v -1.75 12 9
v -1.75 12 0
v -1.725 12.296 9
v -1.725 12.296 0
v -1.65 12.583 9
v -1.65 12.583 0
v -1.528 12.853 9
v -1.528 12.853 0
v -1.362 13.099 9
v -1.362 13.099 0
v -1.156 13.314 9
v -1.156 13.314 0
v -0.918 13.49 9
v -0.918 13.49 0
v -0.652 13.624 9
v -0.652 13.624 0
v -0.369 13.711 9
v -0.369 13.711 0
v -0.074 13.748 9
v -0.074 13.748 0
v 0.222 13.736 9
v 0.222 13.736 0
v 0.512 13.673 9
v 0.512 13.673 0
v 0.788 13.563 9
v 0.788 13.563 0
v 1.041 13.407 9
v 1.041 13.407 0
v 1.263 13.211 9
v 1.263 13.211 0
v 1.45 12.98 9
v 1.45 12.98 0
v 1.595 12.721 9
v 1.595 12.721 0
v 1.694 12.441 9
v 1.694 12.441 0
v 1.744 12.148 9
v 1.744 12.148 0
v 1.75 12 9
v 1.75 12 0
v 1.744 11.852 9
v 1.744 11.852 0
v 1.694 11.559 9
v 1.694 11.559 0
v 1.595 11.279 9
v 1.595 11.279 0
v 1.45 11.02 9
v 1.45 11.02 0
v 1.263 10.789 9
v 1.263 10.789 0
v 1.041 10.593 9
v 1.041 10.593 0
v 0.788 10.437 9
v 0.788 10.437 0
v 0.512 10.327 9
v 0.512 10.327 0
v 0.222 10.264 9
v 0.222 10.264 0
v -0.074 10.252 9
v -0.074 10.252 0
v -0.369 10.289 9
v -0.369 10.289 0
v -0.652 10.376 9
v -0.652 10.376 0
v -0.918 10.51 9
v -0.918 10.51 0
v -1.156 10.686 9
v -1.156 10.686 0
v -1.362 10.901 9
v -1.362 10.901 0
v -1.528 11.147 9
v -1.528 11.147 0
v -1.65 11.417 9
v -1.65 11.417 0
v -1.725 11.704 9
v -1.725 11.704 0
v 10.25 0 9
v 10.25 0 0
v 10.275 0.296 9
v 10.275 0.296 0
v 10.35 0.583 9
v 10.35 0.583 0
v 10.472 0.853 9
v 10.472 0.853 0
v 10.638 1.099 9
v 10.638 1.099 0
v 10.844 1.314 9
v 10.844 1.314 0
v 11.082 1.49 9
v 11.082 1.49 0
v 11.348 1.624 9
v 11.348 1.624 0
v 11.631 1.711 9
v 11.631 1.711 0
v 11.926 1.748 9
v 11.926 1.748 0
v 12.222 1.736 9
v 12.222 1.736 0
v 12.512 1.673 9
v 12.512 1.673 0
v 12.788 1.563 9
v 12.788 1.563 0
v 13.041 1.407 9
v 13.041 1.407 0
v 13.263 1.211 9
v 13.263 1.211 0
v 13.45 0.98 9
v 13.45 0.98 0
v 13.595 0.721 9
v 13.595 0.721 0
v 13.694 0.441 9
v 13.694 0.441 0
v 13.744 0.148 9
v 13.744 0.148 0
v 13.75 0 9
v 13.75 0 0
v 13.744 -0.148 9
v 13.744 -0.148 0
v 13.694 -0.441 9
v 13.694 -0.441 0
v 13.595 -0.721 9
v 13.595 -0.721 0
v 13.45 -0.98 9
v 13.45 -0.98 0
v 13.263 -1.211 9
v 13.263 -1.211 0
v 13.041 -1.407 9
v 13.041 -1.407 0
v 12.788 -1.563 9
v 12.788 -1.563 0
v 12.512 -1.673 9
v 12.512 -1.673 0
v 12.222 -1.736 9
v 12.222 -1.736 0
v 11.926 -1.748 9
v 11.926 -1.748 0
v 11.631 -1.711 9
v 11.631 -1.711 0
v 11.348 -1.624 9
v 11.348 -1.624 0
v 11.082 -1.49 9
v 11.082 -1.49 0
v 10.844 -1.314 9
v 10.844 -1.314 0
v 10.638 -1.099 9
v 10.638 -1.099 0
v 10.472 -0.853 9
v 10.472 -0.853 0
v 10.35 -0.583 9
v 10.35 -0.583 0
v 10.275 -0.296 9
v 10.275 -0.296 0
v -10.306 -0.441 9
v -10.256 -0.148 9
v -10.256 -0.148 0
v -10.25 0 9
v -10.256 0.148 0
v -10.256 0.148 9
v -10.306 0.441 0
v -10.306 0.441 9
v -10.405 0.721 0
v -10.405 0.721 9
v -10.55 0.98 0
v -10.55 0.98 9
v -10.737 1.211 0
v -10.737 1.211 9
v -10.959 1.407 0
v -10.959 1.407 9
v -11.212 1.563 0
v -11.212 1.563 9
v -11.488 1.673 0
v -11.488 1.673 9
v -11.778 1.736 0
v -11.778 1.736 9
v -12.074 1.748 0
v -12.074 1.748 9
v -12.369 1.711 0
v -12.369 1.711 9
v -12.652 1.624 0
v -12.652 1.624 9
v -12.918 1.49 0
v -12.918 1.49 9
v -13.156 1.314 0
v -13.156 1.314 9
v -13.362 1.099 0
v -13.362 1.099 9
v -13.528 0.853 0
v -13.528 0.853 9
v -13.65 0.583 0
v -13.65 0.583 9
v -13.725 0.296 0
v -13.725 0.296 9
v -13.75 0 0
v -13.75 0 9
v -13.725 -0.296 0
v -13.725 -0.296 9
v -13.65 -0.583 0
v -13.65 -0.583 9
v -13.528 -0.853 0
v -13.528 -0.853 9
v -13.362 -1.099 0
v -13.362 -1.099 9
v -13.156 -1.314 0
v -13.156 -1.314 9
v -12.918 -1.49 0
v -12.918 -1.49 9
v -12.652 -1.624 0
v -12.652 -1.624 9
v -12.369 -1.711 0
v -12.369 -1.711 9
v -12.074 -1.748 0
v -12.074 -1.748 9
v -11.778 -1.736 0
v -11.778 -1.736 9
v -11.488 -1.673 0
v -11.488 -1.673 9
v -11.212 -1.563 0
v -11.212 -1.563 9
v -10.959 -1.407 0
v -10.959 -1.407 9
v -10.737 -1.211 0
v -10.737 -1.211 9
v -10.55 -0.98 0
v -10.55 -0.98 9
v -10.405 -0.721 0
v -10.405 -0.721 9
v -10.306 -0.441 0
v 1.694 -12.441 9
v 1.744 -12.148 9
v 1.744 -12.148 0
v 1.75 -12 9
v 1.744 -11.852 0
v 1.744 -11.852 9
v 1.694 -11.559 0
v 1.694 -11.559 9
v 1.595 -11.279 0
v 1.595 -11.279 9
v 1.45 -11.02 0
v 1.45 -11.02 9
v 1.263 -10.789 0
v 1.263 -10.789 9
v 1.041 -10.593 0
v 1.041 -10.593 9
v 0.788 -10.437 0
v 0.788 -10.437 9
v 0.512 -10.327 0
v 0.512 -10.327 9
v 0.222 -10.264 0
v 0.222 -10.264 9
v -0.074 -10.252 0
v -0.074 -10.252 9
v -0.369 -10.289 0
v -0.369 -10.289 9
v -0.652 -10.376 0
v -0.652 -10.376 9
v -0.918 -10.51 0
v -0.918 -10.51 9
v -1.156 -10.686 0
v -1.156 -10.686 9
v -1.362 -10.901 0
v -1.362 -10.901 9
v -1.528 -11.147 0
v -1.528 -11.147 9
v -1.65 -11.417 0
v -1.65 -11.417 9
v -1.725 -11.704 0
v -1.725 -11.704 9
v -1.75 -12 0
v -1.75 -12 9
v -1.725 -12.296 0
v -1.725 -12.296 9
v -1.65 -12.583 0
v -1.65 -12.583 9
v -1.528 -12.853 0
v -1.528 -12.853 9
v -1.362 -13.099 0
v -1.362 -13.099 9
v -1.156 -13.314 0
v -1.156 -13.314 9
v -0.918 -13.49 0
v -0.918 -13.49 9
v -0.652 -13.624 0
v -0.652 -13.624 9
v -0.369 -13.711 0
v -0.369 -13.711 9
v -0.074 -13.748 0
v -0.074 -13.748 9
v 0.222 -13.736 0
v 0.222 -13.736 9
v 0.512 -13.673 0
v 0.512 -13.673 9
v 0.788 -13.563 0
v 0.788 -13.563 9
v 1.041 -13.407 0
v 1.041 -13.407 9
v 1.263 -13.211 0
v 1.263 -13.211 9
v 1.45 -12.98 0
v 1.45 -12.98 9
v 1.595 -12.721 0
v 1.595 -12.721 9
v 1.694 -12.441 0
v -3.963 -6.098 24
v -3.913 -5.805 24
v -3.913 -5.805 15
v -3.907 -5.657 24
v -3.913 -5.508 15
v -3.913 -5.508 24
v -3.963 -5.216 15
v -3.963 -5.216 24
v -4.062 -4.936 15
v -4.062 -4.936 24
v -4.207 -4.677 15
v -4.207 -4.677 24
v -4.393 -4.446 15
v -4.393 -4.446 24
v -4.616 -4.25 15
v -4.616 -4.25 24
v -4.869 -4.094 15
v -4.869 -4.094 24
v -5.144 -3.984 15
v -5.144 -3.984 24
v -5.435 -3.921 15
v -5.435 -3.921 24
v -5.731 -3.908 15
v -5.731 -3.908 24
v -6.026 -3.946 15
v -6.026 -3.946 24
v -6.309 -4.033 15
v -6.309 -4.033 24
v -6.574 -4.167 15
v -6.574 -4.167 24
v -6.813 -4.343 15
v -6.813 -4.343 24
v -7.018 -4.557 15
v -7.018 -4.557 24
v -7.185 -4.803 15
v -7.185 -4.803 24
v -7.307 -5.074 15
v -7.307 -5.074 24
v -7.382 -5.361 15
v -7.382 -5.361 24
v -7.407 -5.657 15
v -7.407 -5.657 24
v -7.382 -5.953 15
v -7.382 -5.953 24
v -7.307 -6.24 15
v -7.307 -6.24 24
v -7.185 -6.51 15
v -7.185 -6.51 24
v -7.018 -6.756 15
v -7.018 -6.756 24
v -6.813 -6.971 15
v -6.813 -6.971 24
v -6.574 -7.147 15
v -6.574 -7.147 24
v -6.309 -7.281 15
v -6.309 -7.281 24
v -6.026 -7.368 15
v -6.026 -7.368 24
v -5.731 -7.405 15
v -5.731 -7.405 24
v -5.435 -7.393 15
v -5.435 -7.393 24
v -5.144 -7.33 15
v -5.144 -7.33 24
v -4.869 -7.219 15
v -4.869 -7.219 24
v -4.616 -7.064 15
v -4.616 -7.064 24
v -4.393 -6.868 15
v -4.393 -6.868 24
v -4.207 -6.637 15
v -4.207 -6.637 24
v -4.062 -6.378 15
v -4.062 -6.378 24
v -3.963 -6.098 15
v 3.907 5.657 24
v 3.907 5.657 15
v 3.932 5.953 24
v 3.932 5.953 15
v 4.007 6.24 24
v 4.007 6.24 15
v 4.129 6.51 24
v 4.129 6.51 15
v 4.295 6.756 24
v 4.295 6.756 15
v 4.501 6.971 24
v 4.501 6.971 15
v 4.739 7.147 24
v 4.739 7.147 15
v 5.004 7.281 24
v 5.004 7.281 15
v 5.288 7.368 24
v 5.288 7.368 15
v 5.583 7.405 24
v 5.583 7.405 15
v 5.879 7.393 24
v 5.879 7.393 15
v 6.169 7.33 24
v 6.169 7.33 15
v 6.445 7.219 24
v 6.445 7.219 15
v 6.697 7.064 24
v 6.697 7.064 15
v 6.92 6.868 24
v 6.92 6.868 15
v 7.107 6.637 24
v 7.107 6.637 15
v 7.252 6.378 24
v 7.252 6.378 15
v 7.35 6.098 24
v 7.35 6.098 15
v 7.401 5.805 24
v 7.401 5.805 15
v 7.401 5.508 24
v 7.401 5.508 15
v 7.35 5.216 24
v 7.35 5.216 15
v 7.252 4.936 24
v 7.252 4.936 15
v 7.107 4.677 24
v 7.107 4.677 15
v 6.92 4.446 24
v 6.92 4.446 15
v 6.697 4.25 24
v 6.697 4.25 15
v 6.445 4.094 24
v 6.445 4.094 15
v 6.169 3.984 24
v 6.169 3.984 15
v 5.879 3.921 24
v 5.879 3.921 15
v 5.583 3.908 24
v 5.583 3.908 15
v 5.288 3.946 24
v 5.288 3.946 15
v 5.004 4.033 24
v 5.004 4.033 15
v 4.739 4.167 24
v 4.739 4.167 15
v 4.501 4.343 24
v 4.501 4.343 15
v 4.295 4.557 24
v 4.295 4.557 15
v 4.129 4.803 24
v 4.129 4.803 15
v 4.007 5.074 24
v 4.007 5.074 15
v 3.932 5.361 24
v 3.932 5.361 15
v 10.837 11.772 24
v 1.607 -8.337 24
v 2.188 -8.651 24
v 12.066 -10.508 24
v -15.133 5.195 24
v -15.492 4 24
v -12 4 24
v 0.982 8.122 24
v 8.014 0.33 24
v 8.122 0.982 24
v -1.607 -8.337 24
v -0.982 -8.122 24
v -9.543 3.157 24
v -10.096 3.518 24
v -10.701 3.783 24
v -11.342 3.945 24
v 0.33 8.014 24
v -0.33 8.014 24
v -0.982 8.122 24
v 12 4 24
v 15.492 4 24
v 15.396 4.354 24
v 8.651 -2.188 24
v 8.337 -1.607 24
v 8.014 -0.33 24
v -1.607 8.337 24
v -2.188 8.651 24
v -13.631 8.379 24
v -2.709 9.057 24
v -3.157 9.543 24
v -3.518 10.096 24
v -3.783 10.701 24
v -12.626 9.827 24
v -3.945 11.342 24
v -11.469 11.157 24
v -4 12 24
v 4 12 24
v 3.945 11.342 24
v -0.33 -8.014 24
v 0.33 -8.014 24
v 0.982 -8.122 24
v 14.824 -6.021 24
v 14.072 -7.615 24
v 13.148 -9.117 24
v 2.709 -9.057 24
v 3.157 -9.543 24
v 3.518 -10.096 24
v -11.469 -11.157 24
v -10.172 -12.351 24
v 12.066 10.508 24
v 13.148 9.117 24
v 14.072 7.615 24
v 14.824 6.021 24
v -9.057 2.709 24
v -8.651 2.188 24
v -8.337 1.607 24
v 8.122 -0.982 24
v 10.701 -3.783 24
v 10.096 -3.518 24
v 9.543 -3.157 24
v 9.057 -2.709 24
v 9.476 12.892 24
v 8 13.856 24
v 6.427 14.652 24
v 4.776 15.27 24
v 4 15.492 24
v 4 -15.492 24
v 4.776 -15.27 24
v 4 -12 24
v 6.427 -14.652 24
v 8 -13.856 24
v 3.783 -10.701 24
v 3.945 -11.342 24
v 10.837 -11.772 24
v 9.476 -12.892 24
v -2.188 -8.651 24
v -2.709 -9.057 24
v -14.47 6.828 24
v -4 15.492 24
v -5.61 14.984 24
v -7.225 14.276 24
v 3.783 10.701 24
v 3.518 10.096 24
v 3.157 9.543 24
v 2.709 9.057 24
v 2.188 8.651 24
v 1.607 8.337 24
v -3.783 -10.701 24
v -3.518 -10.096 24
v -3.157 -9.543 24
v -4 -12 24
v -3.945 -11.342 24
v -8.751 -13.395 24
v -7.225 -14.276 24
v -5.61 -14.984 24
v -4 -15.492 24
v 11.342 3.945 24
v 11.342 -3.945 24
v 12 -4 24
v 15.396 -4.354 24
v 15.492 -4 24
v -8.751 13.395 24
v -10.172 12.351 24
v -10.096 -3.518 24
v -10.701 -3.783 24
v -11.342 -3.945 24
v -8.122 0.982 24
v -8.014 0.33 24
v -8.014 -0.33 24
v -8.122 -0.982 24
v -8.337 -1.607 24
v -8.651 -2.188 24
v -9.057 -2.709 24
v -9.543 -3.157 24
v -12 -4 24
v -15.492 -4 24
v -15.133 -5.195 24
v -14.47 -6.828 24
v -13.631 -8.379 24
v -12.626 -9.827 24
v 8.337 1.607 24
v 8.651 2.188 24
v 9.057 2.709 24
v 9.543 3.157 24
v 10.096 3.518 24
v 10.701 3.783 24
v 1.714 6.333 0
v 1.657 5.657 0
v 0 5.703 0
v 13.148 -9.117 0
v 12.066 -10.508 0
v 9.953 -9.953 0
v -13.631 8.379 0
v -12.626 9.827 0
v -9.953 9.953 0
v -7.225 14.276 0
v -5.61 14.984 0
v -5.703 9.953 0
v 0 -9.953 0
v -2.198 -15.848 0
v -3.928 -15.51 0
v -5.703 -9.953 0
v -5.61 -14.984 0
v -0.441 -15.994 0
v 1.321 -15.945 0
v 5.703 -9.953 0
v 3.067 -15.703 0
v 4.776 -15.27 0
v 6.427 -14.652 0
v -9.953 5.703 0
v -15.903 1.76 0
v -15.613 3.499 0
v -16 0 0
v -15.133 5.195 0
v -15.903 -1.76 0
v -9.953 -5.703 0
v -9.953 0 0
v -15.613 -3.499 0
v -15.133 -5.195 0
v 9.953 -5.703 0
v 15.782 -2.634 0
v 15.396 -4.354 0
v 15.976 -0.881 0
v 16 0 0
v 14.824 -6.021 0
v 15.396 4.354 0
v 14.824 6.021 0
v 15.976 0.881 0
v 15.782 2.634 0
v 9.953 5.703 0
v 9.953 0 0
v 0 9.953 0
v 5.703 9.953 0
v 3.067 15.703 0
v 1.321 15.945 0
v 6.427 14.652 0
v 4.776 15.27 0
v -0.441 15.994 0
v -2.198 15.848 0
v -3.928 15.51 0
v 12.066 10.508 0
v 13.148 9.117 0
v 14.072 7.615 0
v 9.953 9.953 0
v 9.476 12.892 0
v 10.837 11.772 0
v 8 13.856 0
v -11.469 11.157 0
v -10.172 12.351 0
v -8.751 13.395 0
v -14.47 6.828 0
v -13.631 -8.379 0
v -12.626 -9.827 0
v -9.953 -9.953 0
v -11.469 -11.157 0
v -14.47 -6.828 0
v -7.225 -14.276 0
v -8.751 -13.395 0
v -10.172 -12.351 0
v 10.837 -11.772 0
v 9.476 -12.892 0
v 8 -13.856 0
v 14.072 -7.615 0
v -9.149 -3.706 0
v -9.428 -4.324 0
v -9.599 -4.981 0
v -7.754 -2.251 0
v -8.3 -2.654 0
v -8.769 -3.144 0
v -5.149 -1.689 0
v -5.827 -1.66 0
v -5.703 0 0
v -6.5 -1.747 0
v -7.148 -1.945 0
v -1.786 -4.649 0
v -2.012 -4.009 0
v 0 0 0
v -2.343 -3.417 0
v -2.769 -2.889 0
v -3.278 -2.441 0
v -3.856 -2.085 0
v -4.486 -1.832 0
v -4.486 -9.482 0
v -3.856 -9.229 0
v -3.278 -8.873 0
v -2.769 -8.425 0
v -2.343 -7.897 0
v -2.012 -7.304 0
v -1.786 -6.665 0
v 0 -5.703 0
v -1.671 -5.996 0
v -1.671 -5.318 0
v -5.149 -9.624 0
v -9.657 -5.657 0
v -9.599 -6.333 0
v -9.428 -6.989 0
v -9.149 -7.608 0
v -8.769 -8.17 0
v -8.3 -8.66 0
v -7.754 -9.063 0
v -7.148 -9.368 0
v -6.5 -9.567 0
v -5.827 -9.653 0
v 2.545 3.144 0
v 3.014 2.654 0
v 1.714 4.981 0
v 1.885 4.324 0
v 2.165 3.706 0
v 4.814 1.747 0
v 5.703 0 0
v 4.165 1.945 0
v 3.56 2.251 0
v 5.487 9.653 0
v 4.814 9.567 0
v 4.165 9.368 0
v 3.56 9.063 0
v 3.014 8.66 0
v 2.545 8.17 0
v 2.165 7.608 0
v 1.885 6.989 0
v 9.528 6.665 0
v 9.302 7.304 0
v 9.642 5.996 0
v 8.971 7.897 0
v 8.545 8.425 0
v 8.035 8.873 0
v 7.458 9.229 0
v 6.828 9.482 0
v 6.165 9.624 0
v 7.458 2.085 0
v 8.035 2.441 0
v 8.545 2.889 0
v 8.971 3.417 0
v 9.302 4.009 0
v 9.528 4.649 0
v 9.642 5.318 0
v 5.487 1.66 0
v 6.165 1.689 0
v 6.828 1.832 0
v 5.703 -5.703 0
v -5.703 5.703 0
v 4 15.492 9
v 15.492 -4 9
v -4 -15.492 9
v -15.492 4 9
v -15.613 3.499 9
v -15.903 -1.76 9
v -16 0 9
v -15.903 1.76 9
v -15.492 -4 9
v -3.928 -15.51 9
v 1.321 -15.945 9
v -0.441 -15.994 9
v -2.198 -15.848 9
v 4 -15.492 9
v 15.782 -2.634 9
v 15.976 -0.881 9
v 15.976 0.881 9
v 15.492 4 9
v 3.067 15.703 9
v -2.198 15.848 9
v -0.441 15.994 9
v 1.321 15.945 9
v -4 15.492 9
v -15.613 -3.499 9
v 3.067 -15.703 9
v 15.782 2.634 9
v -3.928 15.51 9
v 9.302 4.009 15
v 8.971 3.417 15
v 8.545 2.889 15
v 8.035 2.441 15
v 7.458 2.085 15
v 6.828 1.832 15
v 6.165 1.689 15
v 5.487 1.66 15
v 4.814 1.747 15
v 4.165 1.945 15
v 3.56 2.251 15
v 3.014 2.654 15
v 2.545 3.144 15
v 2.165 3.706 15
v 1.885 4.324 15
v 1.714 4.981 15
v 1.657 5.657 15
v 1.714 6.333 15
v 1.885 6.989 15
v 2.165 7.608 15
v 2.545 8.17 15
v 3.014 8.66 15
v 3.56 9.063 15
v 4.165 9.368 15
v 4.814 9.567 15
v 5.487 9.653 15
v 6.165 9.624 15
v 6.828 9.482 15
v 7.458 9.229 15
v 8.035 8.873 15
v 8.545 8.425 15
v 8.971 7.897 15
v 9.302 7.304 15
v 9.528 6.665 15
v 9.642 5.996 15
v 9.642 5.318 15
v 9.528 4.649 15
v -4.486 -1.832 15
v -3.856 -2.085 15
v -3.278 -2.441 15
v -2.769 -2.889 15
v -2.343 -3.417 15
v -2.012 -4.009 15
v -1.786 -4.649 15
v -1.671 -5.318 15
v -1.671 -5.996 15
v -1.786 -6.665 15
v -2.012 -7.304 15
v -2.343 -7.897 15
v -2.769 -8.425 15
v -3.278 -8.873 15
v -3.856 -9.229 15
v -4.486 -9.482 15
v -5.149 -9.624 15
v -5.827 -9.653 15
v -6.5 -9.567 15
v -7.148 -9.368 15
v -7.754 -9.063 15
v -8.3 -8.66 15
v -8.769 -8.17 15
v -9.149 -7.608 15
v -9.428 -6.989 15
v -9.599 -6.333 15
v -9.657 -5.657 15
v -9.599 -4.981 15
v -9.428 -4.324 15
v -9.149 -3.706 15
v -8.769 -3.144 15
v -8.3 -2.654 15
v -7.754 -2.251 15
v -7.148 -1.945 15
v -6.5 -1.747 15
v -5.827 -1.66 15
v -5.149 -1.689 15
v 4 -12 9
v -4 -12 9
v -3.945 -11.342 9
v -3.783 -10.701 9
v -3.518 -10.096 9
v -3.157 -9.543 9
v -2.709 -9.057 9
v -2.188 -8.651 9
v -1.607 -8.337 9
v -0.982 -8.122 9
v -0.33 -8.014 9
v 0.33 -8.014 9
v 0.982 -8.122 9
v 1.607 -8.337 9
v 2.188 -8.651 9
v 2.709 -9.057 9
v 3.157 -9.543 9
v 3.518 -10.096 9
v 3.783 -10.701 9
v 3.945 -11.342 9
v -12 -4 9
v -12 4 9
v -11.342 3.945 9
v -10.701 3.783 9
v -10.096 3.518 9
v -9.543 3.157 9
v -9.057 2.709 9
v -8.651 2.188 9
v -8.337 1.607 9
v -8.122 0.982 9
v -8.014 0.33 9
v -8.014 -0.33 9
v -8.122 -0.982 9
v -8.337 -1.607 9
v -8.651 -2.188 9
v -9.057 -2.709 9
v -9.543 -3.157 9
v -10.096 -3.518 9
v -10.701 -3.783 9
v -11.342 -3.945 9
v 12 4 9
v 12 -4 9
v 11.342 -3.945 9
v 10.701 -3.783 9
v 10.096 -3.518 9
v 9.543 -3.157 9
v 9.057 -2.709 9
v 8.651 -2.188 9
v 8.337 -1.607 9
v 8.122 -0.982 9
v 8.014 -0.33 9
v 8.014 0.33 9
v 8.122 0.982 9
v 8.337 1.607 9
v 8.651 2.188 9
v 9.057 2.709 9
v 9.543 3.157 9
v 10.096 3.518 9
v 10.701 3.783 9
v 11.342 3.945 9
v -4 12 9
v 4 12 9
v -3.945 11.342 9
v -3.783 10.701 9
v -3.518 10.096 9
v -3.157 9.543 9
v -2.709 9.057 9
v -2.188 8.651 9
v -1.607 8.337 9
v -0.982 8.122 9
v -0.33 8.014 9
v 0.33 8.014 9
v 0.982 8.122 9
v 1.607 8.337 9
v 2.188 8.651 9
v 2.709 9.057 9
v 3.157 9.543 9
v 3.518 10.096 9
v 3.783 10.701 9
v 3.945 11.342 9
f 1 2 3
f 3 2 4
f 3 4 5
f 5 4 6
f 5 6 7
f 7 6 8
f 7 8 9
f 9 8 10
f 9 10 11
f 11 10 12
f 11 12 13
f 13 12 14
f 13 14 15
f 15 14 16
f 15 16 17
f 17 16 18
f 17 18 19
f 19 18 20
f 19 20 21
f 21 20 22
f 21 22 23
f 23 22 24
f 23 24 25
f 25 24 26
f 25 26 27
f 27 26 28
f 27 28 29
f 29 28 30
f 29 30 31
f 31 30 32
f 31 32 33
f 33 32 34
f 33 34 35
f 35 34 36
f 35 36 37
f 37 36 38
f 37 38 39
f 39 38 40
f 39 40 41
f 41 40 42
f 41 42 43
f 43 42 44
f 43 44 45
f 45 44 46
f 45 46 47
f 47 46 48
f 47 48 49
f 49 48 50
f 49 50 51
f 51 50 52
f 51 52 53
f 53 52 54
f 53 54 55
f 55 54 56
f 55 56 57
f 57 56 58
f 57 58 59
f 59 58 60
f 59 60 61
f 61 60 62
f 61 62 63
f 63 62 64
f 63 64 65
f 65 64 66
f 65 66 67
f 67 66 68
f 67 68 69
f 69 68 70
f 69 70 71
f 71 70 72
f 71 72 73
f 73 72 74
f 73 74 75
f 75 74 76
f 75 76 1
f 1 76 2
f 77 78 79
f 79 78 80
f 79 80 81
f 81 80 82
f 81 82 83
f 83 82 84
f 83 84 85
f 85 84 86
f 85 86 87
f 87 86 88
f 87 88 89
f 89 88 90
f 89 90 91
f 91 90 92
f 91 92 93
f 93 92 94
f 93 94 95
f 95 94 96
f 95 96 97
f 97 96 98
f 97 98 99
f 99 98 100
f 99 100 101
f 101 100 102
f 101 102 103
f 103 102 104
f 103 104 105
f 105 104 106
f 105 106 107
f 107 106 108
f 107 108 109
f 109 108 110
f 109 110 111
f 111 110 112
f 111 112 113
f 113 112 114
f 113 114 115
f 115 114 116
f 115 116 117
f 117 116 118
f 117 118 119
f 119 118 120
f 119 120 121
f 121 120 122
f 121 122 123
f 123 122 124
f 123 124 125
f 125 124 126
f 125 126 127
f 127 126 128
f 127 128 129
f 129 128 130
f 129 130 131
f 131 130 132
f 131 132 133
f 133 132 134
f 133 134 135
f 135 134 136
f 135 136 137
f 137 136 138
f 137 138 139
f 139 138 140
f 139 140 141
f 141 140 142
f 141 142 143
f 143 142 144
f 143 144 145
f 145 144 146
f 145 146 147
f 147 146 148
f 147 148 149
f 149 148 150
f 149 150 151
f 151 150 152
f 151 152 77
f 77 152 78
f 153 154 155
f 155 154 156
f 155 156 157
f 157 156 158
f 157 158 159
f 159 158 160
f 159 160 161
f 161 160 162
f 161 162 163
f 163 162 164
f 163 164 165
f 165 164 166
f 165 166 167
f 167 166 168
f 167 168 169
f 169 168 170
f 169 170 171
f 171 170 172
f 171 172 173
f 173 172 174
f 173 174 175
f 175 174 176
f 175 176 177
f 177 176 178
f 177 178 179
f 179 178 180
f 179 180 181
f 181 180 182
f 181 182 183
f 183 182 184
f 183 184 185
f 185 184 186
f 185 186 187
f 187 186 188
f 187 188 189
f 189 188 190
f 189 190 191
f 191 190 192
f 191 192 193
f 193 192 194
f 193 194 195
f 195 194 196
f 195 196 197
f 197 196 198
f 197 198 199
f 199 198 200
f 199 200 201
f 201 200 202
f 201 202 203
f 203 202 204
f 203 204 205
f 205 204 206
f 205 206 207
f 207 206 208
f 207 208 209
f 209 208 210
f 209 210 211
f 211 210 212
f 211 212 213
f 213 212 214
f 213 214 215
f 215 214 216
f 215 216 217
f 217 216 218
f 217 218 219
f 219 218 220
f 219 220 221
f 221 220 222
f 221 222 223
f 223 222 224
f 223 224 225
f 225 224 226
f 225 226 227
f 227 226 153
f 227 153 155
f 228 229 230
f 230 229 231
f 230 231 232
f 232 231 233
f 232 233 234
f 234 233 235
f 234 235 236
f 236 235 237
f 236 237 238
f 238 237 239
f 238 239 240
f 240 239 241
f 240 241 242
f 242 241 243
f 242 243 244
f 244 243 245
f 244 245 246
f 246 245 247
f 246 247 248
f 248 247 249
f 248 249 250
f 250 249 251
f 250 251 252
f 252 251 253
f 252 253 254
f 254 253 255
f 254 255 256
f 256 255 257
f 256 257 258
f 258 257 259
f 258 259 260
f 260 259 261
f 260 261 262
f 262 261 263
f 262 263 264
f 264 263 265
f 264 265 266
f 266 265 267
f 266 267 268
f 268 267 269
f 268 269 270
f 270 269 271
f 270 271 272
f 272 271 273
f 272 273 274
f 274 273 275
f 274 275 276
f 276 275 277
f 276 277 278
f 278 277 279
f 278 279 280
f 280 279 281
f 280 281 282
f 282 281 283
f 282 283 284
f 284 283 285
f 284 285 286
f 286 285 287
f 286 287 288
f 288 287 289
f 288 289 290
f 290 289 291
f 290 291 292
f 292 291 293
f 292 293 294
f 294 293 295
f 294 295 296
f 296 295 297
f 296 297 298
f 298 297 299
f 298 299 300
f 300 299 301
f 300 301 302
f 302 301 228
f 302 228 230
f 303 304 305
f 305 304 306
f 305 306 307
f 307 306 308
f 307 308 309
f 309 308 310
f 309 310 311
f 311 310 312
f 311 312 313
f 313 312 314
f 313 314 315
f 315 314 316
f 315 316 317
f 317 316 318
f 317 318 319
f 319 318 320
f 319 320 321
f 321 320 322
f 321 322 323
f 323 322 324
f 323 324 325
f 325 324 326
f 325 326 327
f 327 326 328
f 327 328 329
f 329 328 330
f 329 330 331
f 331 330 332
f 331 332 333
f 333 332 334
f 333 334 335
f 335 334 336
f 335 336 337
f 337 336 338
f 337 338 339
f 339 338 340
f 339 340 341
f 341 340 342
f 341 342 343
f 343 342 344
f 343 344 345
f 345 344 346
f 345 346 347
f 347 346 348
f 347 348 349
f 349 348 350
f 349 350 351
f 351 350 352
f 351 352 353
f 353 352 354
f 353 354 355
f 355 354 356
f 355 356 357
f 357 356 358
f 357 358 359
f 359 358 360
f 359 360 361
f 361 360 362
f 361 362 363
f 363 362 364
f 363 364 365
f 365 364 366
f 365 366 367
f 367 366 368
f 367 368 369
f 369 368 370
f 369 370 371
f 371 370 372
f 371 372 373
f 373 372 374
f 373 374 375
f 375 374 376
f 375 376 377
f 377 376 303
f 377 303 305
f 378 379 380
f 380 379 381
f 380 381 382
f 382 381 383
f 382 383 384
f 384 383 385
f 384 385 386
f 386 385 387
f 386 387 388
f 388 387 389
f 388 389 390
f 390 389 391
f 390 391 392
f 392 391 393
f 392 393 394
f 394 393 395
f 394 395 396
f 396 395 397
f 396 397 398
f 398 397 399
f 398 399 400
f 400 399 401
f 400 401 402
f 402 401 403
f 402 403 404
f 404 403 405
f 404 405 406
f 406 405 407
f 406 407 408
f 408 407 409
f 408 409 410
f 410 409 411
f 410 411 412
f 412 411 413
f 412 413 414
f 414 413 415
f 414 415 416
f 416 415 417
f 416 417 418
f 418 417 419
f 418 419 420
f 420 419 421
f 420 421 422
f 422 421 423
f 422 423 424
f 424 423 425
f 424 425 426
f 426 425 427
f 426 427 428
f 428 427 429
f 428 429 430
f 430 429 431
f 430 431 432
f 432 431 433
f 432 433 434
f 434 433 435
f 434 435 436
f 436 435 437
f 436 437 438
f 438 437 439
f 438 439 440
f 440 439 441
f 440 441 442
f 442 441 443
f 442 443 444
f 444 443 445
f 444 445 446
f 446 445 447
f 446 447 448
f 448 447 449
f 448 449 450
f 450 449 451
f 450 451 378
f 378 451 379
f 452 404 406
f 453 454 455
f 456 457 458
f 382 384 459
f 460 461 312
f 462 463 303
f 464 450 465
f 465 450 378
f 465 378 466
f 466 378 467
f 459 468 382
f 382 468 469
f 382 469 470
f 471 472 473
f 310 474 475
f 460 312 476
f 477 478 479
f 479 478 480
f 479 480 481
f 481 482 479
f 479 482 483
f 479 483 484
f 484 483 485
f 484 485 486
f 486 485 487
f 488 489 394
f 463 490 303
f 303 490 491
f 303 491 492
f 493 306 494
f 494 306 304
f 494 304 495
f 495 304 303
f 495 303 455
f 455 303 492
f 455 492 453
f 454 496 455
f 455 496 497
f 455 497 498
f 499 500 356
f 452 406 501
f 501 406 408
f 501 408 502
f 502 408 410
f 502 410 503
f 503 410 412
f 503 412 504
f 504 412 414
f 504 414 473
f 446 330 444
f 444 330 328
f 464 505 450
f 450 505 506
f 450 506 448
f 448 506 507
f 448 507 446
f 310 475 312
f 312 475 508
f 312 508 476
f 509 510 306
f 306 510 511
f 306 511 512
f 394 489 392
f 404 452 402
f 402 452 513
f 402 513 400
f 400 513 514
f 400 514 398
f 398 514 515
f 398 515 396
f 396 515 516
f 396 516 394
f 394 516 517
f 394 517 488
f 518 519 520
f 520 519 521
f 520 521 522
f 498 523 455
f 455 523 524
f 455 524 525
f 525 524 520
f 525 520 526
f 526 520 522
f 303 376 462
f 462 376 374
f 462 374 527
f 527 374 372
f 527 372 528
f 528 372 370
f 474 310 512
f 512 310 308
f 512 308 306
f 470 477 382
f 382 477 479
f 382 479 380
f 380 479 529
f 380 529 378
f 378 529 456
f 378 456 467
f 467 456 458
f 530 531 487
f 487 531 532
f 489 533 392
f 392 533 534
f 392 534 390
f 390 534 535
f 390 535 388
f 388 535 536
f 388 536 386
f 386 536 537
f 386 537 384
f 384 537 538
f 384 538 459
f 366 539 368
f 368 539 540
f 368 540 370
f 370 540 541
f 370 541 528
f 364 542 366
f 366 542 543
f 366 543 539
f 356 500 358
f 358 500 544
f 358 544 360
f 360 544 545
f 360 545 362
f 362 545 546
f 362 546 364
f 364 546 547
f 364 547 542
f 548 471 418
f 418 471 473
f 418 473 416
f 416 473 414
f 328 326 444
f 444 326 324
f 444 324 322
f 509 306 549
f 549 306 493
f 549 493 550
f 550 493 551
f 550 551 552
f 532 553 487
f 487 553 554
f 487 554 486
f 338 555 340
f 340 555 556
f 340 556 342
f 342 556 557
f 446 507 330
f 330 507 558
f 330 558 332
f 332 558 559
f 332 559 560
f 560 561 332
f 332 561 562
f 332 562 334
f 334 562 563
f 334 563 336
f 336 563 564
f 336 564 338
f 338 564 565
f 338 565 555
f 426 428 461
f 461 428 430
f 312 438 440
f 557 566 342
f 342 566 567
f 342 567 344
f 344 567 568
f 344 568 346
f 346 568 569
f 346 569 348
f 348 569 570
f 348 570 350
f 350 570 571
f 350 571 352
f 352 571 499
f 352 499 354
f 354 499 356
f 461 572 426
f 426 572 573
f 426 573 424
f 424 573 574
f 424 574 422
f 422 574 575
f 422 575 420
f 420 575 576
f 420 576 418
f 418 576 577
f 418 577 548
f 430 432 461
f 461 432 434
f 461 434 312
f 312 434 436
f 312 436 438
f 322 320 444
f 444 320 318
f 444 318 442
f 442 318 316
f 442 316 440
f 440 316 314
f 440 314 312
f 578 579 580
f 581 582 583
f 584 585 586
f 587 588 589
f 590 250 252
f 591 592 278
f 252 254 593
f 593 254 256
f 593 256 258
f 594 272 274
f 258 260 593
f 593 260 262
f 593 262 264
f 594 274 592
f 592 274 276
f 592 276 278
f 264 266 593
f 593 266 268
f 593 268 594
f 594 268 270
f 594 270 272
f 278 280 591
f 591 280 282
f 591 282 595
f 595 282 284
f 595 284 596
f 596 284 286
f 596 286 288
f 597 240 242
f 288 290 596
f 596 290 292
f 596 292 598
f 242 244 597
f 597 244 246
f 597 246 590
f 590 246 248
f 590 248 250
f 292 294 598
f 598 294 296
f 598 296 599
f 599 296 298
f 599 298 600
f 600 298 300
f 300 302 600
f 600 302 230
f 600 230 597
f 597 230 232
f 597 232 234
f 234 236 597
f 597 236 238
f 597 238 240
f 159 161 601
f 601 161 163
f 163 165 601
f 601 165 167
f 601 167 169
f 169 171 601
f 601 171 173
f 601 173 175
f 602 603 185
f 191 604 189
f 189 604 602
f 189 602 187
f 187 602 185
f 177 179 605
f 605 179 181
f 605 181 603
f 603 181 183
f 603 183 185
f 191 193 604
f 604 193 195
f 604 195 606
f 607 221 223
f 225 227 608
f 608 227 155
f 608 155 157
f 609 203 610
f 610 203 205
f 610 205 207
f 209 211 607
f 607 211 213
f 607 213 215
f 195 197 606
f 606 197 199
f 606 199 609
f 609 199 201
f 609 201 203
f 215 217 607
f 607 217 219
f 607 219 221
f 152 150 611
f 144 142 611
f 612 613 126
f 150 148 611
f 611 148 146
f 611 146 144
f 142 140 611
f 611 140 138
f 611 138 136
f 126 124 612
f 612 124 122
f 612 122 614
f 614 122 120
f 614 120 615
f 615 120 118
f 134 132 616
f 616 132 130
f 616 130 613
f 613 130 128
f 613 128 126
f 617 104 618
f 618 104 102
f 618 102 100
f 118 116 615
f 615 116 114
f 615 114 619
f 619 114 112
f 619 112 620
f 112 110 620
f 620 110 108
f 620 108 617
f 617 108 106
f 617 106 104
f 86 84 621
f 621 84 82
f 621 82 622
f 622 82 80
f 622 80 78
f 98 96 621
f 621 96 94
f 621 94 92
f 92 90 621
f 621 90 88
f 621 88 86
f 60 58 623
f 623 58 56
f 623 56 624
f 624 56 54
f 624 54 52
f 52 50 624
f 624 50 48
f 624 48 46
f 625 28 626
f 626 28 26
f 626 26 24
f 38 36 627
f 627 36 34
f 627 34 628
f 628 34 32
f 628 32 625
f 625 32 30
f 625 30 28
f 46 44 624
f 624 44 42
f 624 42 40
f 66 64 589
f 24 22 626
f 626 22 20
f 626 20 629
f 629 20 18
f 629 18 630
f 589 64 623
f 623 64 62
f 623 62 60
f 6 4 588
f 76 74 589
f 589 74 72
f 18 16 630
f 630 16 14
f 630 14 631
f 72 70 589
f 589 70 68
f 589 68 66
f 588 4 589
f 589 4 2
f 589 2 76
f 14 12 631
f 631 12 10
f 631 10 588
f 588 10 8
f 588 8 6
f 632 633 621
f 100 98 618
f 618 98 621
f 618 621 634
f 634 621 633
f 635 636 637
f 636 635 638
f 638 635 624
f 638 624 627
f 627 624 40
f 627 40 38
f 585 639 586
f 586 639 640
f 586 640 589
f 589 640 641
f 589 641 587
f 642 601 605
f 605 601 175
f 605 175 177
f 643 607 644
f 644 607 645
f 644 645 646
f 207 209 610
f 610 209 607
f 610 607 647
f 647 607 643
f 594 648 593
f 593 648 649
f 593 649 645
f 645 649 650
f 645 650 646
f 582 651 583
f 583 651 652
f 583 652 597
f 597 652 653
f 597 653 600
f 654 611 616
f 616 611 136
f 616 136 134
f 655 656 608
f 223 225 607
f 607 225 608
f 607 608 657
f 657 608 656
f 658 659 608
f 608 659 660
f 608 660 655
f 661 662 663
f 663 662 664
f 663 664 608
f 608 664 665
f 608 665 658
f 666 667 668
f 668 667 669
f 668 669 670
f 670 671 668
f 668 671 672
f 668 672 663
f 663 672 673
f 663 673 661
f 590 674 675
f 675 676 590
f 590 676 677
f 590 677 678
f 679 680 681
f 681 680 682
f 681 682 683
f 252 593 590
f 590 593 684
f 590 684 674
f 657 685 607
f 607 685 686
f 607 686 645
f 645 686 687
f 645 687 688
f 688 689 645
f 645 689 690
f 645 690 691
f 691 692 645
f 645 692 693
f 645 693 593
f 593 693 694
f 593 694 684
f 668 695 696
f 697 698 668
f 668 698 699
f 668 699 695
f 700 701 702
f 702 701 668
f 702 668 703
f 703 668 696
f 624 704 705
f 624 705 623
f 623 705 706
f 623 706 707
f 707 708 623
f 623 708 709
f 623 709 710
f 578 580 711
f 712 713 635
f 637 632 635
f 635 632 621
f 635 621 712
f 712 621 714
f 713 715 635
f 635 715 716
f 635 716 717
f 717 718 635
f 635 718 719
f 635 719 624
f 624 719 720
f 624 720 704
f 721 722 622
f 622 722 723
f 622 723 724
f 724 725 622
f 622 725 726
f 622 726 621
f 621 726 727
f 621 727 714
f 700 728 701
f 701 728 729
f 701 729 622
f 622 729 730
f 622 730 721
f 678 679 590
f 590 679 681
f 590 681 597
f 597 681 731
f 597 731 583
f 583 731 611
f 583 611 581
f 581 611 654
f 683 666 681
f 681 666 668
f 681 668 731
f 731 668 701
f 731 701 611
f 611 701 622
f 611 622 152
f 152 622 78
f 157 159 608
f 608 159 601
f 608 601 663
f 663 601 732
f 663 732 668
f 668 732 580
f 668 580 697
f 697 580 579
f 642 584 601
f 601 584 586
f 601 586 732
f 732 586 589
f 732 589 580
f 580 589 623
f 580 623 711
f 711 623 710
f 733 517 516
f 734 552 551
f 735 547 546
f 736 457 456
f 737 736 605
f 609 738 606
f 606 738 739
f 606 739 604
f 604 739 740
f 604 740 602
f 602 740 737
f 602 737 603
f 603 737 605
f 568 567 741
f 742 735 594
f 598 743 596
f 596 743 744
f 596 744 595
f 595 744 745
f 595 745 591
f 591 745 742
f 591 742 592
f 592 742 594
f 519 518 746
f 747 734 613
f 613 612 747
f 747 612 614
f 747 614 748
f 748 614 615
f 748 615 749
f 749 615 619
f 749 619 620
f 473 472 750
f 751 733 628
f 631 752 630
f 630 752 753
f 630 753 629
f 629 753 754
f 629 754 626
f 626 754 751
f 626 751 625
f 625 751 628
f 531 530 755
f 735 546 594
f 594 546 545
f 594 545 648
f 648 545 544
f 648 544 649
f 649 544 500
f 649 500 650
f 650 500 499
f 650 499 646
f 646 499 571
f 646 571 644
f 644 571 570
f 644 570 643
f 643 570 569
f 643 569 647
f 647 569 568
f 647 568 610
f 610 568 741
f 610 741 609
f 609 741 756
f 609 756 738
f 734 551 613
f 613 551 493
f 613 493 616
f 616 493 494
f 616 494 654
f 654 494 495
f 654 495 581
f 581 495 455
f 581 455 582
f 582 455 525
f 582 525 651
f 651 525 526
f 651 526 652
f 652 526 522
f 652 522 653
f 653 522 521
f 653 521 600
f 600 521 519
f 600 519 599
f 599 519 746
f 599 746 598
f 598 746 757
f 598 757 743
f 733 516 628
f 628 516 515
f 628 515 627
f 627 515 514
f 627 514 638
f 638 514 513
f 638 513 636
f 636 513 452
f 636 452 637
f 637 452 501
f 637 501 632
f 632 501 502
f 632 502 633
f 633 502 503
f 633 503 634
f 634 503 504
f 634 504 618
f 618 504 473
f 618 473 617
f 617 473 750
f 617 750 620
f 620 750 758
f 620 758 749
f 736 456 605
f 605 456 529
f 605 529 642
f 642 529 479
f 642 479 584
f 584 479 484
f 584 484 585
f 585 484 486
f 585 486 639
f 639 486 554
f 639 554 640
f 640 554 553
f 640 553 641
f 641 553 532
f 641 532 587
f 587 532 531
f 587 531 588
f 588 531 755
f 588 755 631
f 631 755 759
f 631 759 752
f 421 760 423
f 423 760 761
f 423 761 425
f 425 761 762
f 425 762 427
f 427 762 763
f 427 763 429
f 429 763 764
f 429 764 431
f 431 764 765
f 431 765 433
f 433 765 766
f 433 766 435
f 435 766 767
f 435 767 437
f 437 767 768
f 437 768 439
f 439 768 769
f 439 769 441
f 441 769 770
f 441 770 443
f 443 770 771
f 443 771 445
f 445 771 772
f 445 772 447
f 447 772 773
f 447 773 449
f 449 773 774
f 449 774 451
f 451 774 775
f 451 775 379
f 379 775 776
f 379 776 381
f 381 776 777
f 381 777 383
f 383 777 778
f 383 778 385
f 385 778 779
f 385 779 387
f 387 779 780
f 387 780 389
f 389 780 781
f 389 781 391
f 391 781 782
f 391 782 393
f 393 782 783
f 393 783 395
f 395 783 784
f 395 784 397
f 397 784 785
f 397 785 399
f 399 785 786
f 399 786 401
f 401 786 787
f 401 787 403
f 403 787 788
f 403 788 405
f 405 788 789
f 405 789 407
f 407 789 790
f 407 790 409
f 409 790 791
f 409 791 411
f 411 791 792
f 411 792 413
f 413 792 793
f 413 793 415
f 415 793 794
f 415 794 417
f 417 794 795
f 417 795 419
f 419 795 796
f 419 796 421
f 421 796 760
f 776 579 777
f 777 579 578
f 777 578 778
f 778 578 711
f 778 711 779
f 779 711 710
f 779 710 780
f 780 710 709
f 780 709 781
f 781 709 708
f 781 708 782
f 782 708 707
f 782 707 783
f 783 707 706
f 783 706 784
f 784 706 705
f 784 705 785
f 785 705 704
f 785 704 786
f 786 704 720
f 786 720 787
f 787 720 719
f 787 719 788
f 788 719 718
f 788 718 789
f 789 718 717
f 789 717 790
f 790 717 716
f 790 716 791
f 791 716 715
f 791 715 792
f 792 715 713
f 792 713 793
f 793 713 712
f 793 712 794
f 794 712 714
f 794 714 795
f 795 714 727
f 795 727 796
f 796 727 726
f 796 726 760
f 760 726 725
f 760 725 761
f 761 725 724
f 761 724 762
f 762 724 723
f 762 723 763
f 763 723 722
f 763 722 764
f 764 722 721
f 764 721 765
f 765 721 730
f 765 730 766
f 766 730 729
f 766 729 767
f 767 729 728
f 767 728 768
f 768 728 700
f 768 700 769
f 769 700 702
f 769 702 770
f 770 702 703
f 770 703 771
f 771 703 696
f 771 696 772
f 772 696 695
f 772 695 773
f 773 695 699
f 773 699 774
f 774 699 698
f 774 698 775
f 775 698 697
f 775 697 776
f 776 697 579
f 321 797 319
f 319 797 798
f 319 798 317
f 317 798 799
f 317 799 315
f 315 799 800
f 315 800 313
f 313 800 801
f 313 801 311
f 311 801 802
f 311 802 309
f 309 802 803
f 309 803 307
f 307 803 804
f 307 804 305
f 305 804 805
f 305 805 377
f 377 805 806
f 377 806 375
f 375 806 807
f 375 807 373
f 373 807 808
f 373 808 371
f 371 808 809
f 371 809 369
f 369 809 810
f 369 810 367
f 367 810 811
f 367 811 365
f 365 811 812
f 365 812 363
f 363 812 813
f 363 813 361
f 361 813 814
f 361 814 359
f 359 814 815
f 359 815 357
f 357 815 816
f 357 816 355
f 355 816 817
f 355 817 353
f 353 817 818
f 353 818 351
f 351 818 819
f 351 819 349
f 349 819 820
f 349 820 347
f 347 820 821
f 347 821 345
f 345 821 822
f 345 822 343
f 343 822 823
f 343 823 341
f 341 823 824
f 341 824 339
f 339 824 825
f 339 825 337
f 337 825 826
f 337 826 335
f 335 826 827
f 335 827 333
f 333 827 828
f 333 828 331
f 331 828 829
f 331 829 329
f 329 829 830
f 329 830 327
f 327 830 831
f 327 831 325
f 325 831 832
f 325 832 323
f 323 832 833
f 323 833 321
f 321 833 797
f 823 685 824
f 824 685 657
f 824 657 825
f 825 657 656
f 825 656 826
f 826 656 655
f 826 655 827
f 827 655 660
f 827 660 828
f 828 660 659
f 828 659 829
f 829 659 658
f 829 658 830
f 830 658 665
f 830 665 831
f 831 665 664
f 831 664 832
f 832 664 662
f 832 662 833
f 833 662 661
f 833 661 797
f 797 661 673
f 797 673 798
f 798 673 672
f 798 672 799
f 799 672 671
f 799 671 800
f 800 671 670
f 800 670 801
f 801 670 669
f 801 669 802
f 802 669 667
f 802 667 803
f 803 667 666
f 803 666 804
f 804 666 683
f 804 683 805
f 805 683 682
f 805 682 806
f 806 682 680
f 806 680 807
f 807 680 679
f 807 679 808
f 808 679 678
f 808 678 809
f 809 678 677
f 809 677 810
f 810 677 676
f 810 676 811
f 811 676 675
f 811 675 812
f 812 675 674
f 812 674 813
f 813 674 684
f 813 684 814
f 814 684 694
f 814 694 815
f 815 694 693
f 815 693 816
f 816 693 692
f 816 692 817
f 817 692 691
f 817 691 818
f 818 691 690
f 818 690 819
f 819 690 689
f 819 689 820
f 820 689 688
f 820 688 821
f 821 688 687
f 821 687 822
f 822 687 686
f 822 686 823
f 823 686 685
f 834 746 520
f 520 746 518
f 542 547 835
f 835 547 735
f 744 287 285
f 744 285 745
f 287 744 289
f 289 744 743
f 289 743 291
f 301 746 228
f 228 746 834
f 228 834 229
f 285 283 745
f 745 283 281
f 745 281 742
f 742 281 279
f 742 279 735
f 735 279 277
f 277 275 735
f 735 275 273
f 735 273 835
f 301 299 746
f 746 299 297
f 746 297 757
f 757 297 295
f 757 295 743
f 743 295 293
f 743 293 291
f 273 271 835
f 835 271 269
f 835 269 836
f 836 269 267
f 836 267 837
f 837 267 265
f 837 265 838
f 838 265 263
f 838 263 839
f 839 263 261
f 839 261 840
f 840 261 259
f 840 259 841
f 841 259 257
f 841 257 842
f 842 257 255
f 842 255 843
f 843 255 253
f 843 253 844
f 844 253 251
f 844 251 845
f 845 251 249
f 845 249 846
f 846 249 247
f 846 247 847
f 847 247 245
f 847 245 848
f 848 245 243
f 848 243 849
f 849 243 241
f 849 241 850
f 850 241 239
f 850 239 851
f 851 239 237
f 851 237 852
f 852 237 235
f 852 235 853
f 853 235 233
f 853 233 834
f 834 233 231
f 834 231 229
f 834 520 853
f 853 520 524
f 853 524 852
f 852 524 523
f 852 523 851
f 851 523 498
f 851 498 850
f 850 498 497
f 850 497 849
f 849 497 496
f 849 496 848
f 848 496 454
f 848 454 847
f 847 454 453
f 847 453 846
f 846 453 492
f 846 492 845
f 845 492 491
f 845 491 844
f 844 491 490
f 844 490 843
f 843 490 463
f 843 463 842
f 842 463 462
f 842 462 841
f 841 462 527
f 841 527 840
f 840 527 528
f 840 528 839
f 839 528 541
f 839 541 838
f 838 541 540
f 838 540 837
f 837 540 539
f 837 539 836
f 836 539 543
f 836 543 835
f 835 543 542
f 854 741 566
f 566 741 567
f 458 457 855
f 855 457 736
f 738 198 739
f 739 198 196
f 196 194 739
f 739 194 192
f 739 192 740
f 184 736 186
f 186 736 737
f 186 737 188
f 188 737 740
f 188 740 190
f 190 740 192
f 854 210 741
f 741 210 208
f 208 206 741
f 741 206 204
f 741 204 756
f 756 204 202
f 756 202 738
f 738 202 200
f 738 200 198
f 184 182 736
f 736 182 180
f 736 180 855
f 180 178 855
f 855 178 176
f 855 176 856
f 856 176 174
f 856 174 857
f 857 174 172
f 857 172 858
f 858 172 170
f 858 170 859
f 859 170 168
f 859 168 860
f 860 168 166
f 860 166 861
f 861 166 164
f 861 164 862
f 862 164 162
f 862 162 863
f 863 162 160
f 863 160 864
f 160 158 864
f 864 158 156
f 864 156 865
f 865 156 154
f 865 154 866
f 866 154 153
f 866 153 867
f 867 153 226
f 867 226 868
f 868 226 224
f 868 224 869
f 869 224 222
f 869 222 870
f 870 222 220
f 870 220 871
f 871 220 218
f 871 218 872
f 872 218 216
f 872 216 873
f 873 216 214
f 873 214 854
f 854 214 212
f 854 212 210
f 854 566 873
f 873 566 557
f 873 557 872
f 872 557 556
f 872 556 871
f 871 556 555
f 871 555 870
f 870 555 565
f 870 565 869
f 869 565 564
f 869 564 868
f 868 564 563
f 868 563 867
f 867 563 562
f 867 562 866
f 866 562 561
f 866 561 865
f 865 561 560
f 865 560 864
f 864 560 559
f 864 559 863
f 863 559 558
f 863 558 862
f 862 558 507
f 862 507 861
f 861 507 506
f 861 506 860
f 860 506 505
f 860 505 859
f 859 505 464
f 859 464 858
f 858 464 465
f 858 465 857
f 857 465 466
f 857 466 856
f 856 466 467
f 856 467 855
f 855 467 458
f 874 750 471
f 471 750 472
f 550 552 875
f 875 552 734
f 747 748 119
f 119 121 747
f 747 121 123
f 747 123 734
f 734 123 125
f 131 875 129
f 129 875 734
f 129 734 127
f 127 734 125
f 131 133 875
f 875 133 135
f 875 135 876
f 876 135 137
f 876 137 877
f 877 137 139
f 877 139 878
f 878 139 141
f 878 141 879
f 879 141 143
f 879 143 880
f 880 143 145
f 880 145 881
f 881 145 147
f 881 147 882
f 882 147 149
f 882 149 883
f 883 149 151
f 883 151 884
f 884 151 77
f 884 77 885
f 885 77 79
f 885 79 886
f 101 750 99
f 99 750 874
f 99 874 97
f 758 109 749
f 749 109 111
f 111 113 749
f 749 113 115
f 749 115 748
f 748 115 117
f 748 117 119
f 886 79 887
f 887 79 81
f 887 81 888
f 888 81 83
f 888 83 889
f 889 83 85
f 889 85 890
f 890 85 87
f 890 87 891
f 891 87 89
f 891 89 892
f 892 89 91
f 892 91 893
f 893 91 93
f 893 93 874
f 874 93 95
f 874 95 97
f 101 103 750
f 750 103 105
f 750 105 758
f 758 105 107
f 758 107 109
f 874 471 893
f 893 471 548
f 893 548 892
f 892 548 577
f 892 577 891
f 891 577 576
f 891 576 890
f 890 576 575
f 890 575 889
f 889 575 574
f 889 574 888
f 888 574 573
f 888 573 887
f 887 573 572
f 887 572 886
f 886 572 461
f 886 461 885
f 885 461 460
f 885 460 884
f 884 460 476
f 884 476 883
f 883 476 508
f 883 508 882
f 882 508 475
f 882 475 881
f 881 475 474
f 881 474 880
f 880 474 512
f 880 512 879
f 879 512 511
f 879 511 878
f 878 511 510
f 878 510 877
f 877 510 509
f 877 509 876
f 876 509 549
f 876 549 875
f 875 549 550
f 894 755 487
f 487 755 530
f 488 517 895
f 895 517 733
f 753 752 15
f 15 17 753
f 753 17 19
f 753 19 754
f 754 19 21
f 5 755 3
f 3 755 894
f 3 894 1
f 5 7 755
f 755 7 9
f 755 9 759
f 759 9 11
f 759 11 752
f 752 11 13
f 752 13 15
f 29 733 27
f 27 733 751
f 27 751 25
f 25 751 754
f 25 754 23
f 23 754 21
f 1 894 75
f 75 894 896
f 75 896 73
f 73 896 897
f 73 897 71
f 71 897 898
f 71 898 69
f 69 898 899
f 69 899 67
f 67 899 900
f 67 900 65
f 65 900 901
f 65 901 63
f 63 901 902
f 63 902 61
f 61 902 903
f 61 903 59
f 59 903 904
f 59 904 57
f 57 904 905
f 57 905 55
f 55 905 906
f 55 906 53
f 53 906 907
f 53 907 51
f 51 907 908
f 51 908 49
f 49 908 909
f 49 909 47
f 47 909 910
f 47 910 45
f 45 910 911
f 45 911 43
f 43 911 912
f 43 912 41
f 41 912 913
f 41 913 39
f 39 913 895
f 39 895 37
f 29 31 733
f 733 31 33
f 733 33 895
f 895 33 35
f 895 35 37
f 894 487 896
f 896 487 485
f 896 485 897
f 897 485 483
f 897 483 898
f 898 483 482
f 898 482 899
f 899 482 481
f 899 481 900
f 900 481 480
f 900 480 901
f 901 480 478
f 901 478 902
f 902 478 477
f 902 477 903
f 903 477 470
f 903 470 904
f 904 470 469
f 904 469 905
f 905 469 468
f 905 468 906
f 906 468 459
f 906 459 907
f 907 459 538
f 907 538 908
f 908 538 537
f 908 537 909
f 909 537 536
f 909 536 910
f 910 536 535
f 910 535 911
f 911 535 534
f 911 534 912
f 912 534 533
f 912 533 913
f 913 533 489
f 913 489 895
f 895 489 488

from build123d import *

# Parameters (mm, degrees)
SKETCH1_R           = 16
SKETCH1_R_2         = 1.75
BOSS_EXTRUDE1_DEPTH = 24
SKETCH2_R           = 1.75
CUT_EXTRUDE1_DEPTH  = 33.984845005
SKETCH3_R           = 4
CUT_EXTRUDE2_DEPTH  = 15
CUT_EXTRUDE3_DEPTH  = 15


with BuildPart() as part:
    # Sketch1 → Boss-Extrude1 (new body)
    with BuildSketch(Plane.XY):
        Circle(SKETCH1_R)
        with Locations((0, 12)):
            Circle(SKETCH1_R_2, mode=Mode.SUBTRACT)
        with Locations((12, 0)):
            Circle(SKETCH1_R_2, mode=Mode.SUBTRACT)
        with Locations(Location((-12, 0, 0), (0, 0, 180))):
            Circle(SKETCH1_R_2, mode=Mode.SUBTRACT)
        with Locations(Location((0, -12, 0), (0, 0, 180))):
            Circle(SKETCH1_R_2, mode=Mode.SUBTRACT)
    extrude(amount=BOSS_EXTRUDE1_DEPTH)

    # Sketch2 → Cut-Extrude1 (cut, through all)
    with BuildSketch(Plane(origin=(0, 0, 0), x_dir=(-1, 0, 0), z_dir=(0, 0, -1))):
        with Locations((-5.656854249, 5.656854249)):
            Circle(SKETCH2_R)
        with Locations(Location((5.656854249, -5.656854249, 0), (0, 0, 180))):
            Circle(SKETCH2_R)
    extrude(amount=-CUT_EXTRUDE1_DEPTH, mode=Mode.SUBTRACT)

    # Sketch3 → Cut-Extrude2 (cut)
    with BuildSketch(Plane(origin=(0, 0, 0), x_dir=(-1, 0, 0), z_dir=(0, 0, -1))):
        with Locations((-5.656854249, 5.656854249)):
            Circle(SKETCH3_R)
        with Locations((5.656854249, -5.656854249)):
            Circle(SKETCH3_R)
    extrude(amount=-CUT_EXTRUDE2_DEPTH, mode=Mode.SUBTRACT)

    # Sketch4 → Cut-Extrude3 (cut)
    with BuildSketch(Plane.XY.offset(24)):
        with BuildLine():
            Line((-4, 12), (-4, 19.527532163))
            Line((-4, 19.527532163), (4, 19.527532163))
            Line((4, 19.527532163), (4, 12))
            ThreePointArc((4, 12), (0, 8), (-4, 12))
        make_face()
        with BuildLine():
            Line((12, 4), (20.319785819, 4))
            Line((20.319785819, 4), (20.319785819, -4))
            Line((20.319785819, -4), (12, -4))
            ThreePointArc((12, -4), (8, 0), (12, 4))
        make_face()
        with BuildLine():
            Line((-12, 4), (-20.860663916, 4))
            Line((-20.860663916, 4), (-20.860663916, -4))
            Line((-20.860663916, -4), (-12, -4))
            ThreePointArc((-12, -4), (-8, 0), (-12, 4))
        make_face()
        with BuildLine():
            Line((-4, -12), (-4, -17.609746143))
            Line((-4, -17.609746143), (4, -17.609746143))
            Line((4, -17.609746143), (4, -12))
            ThreePointArc((4, -12), (0, -8), (-4, -12))
        make_face()
    extrude(amount=-CUT_EXTRUDE3_DEPTH, mode=Mode.SUBTRACT)


solid = part.part
